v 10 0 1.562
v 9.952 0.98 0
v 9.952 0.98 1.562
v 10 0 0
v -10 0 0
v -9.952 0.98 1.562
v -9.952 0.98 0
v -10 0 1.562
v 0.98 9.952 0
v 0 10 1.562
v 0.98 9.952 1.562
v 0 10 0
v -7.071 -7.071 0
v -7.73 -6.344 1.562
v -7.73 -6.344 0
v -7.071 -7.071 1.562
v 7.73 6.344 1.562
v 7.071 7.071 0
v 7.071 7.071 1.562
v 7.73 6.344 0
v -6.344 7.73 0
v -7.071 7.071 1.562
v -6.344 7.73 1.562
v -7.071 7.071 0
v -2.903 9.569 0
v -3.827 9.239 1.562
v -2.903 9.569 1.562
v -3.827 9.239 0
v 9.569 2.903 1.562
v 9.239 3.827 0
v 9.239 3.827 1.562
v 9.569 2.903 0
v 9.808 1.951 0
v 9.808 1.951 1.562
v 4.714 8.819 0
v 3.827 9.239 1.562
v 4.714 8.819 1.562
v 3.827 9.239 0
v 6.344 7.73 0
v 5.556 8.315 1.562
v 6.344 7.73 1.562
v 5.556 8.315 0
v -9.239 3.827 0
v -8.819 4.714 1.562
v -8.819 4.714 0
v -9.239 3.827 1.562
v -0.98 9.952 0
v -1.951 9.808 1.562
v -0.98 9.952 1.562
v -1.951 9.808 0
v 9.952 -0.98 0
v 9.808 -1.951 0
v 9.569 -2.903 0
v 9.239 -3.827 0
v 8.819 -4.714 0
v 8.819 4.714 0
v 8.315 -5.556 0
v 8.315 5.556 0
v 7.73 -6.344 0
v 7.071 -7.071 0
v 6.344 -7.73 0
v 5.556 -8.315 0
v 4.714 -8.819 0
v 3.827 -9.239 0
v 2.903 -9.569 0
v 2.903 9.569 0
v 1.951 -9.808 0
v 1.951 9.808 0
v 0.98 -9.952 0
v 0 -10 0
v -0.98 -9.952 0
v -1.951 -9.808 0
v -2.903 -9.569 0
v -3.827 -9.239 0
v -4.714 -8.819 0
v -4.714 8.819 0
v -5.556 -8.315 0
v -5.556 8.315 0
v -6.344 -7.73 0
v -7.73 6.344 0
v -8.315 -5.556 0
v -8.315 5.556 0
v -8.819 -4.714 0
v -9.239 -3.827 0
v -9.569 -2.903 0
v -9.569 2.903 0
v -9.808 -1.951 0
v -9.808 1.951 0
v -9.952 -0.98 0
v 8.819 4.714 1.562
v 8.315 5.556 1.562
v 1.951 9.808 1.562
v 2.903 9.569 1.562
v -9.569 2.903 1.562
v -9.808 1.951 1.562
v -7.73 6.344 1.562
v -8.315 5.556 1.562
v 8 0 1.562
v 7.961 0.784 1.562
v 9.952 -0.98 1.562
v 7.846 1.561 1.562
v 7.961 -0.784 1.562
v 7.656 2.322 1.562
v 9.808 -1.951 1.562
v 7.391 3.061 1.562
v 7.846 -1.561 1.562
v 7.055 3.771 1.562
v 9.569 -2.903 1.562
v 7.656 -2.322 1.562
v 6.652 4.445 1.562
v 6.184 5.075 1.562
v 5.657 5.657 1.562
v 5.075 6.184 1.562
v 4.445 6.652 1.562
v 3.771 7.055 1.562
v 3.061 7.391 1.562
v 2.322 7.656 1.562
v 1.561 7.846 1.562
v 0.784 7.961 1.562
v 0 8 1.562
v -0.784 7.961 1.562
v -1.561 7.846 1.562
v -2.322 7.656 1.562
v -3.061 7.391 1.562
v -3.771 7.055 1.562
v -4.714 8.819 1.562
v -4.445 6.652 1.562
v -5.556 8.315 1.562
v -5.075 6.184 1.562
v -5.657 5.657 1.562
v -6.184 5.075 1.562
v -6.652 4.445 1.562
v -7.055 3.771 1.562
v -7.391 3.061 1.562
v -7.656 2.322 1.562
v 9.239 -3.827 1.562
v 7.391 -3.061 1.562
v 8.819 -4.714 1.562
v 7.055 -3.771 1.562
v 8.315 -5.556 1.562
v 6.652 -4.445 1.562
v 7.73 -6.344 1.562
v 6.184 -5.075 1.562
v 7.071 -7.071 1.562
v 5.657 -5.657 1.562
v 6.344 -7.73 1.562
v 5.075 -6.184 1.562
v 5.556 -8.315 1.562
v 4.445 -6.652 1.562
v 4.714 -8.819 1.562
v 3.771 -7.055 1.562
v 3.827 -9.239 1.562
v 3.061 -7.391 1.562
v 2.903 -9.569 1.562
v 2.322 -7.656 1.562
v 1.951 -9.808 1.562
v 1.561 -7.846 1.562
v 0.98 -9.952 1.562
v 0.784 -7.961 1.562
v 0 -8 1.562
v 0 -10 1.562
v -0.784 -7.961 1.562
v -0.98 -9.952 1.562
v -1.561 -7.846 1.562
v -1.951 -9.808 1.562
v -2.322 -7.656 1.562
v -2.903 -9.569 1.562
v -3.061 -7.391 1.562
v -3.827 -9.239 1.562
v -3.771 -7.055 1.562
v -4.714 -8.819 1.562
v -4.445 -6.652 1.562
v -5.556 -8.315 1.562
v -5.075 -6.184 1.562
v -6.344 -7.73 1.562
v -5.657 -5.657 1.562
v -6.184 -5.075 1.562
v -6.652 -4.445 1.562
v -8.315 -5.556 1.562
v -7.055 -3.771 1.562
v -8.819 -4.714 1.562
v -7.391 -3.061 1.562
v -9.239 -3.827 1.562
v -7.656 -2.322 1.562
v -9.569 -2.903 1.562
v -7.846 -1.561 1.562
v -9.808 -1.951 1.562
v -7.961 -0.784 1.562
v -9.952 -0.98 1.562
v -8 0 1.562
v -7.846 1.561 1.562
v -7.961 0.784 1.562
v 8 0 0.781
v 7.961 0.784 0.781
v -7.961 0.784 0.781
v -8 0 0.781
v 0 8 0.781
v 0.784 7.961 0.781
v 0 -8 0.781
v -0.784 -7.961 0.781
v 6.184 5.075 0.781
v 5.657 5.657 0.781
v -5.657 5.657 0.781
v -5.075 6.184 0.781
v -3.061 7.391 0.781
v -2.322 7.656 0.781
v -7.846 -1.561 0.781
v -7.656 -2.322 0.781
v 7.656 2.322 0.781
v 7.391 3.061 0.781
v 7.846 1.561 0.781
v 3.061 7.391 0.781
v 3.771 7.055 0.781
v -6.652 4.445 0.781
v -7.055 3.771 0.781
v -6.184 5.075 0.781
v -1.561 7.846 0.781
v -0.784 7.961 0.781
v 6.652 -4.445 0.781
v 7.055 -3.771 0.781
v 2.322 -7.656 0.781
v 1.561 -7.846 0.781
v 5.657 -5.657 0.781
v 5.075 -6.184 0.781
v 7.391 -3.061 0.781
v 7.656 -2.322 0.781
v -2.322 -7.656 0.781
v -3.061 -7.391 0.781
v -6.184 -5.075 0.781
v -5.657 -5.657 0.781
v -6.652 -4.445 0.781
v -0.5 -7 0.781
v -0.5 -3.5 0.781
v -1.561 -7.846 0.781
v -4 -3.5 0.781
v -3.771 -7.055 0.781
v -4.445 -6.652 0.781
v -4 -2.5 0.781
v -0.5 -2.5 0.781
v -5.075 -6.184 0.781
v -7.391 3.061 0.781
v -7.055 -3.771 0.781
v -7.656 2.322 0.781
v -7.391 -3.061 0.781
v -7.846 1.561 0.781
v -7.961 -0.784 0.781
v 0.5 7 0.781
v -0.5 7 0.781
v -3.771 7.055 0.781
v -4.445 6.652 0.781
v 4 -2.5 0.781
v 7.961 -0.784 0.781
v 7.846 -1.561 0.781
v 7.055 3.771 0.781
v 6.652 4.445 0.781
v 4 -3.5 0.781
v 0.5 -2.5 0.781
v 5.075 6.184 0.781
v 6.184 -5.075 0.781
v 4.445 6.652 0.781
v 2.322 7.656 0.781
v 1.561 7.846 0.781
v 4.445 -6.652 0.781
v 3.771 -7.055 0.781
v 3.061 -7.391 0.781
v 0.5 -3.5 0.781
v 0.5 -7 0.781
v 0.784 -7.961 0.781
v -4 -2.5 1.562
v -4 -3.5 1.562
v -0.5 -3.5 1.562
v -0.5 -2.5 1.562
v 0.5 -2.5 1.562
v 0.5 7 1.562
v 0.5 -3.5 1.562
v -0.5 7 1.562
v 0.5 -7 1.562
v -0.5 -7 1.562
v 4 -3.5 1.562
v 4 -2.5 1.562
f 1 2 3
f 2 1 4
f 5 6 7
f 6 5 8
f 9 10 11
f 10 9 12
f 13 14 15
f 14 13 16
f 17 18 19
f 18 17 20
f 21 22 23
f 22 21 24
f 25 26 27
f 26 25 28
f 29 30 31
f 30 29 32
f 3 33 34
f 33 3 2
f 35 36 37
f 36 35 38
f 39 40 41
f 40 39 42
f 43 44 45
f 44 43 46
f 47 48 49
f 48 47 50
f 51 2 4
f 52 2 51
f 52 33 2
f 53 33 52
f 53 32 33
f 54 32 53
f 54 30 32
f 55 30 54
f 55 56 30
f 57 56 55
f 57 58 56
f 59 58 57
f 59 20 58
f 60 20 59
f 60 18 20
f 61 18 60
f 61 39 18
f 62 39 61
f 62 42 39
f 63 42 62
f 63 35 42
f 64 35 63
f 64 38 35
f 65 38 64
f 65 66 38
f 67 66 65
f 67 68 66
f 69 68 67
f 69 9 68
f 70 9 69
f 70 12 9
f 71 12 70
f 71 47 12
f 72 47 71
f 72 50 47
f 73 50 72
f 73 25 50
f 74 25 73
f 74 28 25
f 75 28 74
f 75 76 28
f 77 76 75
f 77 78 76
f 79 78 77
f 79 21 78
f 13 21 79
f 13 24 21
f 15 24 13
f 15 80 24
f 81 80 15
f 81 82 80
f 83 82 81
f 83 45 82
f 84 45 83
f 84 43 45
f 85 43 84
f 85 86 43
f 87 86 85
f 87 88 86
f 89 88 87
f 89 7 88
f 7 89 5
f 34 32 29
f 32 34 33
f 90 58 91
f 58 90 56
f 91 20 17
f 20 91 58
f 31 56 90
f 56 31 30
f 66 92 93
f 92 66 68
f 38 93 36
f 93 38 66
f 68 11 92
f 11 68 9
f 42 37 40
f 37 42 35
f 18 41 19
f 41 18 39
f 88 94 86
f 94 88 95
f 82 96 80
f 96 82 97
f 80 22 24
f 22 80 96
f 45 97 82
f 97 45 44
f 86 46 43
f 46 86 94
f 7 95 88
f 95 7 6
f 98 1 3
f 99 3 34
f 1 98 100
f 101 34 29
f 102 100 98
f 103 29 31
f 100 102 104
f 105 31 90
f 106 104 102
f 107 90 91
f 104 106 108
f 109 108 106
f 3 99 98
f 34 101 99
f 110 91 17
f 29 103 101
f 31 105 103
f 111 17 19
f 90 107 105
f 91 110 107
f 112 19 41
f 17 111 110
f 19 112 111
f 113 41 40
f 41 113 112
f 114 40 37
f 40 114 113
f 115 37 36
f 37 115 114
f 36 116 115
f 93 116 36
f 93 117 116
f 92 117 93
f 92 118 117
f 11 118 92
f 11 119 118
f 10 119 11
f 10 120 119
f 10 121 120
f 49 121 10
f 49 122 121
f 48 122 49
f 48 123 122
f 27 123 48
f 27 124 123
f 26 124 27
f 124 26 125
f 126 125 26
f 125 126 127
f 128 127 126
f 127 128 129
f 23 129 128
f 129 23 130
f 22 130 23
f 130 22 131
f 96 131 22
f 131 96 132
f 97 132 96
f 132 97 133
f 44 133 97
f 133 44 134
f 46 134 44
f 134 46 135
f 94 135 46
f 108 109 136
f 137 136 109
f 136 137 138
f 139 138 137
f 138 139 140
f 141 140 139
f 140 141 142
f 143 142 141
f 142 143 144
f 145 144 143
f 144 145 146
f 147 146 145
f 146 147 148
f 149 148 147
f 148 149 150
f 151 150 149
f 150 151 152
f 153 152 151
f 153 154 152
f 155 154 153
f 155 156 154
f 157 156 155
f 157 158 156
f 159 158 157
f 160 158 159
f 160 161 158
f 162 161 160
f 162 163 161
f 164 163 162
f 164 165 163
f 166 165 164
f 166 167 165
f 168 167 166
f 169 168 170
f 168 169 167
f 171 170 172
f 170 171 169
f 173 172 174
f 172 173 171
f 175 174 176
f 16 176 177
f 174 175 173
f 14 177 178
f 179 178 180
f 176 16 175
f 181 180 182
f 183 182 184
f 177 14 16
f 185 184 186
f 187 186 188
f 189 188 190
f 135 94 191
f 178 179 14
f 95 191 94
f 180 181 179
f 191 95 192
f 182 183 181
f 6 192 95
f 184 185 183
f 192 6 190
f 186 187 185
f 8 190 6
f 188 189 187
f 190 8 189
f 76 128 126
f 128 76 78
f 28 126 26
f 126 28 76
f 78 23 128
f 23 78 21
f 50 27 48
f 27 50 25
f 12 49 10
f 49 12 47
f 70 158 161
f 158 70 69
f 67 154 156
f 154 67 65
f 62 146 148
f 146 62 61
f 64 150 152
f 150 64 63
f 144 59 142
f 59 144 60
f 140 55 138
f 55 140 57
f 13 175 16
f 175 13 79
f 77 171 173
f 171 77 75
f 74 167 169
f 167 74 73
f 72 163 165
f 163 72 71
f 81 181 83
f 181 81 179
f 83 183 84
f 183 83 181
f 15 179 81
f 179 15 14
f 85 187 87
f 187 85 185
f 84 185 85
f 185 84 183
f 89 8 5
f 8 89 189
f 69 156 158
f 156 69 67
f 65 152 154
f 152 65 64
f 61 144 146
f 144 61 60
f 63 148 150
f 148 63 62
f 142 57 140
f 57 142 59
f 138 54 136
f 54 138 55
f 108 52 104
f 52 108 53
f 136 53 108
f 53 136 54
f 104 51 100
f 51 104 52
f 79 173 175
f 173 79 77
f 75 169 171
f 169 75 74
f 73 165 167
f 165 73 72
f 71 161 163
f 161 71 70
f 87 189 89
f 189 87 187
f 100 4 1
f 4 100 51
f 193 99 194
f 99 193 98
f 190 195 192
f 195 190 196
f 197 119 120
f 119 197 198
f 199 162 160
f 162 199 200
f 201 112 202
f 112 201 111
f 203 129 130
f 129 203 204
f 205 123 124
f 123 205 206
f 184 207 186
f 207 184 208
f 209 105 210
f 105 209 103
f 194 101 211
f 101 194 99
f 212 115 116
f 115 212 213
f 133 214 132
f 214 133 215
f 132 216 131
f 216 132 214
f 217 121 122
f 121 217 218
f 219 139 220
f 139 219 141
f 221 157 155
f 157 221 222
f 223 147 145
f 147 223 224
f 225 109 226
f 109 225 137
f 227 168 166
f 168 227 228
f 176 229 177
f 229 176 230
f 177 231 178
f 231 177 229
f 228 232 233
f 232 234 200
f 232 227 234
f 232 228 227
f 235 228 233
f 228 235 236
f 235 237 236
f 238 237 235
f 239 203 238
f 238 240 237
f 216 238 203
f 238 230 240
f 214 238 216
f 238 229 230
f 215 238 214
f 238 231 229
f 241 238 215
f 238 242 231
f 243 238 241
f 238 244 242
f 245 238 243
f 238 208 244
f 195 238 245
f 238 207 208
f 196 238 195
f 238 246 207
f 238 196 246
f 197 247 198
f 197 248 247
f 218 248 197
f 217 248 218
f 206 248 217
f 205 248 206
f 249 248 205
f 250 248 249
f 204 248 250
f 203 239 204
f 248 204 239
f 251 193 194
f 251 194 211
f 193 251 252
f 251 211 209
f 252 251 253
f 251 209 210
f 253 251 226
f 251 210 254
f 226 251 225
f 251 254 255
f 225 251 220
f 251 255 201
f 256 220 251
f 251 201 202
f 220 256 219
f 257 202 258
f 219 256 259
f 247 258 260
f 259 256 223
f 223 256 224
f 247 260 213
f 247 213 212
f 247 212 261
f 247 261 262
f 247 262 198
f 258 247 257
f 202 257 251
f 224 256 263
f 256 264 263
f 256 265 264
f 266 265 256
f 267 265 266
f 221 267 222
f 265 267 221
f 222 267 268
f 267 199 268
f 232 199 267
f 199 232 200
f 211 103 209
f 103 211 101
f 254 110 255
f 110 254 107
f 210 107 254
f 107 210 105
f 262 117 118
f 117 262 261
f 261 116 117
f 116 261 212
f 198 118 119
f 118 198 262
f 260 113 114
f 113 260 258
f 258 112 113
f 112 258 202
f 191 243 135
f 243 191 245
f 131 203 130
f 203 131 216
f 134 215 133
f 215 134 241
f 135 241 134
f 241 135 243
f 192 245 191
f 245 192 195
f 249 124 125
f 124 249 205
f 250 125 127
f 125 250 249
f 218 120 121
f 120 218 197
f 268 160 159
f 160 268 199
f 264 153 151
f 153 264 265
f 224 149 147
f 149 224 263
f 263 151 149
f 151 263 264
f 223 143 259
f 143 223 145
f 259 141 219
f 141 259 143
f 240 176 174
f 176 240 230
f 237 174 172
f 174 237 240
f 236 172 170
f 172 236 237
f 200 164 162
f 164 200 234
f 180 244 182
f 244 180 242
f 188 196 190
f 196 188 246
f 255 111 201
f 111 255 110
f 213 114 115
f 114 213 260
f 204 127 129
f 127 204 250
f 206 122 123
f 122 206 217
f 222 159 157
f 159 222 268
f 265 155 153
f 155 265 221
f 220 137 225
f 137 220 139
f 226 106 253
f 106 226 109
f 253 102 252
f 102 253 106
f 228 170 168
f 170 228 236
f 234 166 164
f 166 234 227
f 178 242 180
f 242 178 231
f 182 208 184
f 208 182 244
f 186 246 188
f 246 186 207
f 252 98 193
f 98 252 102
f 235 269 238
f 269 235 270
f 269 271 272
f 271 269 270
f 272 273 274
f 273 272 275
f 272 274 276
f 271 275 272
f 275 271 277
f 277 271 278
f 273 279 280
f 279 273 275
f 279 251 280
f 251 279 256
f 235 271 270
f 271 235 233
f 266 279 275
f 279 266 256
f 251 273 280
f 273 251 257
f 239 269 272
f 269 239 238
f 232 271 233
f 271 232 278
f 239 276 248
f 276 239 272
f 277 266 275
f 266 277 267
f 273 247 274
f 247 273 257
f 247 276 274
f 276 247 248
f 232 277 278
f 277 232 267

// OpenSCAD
$fn = 64;

size_index = 100;
button_radius = size_index/10;
rim_size = size_index/100;
internal_radius = button_radius - rim_size*2;
//button_height = 1.8;
button_height = size_index/64;
button_drop = button_height/2;
font_size = size_index/16;

text = "Align";
 font = "Liberation Sans";
 
 valign = [
   [  0, "top"],
   [ 40, "center"],
   [ 75, "baseline"],
   [110, "bottom"]
 ];
 
union() {
    difference() {
        cylinder(r = button_radius, h = button_height);
        translate([0, 0, button_drop]) {
            cylinder(r = internal_radius, h = button_drop);
        }
    }
    translate([-internal_radius/2,-(rim_size*3.5),button_drop]) {
        cube(size=[internal_radius, rim_size, button_drop]);
    }
    translate([-(rim_size/2),-internal_radius+rim_size,button_drop]) {
        cube(size=[rim_size, internal_radius*2-rim_size*2, button_drop]);
    }
}


/*
content = "RK";
font = "Liberation Sans";

translate ([-(font_size),-(font_size/2),0]) {
   linear_extrude(height = button_height) {
       text("RK", font = font, size = font_size);
     }
 }
*/
 /*
projection() {
    translate([0,0,button_drop*sqrt(2)]) {
        text("asdf", halign=50);
    }
}
*/
